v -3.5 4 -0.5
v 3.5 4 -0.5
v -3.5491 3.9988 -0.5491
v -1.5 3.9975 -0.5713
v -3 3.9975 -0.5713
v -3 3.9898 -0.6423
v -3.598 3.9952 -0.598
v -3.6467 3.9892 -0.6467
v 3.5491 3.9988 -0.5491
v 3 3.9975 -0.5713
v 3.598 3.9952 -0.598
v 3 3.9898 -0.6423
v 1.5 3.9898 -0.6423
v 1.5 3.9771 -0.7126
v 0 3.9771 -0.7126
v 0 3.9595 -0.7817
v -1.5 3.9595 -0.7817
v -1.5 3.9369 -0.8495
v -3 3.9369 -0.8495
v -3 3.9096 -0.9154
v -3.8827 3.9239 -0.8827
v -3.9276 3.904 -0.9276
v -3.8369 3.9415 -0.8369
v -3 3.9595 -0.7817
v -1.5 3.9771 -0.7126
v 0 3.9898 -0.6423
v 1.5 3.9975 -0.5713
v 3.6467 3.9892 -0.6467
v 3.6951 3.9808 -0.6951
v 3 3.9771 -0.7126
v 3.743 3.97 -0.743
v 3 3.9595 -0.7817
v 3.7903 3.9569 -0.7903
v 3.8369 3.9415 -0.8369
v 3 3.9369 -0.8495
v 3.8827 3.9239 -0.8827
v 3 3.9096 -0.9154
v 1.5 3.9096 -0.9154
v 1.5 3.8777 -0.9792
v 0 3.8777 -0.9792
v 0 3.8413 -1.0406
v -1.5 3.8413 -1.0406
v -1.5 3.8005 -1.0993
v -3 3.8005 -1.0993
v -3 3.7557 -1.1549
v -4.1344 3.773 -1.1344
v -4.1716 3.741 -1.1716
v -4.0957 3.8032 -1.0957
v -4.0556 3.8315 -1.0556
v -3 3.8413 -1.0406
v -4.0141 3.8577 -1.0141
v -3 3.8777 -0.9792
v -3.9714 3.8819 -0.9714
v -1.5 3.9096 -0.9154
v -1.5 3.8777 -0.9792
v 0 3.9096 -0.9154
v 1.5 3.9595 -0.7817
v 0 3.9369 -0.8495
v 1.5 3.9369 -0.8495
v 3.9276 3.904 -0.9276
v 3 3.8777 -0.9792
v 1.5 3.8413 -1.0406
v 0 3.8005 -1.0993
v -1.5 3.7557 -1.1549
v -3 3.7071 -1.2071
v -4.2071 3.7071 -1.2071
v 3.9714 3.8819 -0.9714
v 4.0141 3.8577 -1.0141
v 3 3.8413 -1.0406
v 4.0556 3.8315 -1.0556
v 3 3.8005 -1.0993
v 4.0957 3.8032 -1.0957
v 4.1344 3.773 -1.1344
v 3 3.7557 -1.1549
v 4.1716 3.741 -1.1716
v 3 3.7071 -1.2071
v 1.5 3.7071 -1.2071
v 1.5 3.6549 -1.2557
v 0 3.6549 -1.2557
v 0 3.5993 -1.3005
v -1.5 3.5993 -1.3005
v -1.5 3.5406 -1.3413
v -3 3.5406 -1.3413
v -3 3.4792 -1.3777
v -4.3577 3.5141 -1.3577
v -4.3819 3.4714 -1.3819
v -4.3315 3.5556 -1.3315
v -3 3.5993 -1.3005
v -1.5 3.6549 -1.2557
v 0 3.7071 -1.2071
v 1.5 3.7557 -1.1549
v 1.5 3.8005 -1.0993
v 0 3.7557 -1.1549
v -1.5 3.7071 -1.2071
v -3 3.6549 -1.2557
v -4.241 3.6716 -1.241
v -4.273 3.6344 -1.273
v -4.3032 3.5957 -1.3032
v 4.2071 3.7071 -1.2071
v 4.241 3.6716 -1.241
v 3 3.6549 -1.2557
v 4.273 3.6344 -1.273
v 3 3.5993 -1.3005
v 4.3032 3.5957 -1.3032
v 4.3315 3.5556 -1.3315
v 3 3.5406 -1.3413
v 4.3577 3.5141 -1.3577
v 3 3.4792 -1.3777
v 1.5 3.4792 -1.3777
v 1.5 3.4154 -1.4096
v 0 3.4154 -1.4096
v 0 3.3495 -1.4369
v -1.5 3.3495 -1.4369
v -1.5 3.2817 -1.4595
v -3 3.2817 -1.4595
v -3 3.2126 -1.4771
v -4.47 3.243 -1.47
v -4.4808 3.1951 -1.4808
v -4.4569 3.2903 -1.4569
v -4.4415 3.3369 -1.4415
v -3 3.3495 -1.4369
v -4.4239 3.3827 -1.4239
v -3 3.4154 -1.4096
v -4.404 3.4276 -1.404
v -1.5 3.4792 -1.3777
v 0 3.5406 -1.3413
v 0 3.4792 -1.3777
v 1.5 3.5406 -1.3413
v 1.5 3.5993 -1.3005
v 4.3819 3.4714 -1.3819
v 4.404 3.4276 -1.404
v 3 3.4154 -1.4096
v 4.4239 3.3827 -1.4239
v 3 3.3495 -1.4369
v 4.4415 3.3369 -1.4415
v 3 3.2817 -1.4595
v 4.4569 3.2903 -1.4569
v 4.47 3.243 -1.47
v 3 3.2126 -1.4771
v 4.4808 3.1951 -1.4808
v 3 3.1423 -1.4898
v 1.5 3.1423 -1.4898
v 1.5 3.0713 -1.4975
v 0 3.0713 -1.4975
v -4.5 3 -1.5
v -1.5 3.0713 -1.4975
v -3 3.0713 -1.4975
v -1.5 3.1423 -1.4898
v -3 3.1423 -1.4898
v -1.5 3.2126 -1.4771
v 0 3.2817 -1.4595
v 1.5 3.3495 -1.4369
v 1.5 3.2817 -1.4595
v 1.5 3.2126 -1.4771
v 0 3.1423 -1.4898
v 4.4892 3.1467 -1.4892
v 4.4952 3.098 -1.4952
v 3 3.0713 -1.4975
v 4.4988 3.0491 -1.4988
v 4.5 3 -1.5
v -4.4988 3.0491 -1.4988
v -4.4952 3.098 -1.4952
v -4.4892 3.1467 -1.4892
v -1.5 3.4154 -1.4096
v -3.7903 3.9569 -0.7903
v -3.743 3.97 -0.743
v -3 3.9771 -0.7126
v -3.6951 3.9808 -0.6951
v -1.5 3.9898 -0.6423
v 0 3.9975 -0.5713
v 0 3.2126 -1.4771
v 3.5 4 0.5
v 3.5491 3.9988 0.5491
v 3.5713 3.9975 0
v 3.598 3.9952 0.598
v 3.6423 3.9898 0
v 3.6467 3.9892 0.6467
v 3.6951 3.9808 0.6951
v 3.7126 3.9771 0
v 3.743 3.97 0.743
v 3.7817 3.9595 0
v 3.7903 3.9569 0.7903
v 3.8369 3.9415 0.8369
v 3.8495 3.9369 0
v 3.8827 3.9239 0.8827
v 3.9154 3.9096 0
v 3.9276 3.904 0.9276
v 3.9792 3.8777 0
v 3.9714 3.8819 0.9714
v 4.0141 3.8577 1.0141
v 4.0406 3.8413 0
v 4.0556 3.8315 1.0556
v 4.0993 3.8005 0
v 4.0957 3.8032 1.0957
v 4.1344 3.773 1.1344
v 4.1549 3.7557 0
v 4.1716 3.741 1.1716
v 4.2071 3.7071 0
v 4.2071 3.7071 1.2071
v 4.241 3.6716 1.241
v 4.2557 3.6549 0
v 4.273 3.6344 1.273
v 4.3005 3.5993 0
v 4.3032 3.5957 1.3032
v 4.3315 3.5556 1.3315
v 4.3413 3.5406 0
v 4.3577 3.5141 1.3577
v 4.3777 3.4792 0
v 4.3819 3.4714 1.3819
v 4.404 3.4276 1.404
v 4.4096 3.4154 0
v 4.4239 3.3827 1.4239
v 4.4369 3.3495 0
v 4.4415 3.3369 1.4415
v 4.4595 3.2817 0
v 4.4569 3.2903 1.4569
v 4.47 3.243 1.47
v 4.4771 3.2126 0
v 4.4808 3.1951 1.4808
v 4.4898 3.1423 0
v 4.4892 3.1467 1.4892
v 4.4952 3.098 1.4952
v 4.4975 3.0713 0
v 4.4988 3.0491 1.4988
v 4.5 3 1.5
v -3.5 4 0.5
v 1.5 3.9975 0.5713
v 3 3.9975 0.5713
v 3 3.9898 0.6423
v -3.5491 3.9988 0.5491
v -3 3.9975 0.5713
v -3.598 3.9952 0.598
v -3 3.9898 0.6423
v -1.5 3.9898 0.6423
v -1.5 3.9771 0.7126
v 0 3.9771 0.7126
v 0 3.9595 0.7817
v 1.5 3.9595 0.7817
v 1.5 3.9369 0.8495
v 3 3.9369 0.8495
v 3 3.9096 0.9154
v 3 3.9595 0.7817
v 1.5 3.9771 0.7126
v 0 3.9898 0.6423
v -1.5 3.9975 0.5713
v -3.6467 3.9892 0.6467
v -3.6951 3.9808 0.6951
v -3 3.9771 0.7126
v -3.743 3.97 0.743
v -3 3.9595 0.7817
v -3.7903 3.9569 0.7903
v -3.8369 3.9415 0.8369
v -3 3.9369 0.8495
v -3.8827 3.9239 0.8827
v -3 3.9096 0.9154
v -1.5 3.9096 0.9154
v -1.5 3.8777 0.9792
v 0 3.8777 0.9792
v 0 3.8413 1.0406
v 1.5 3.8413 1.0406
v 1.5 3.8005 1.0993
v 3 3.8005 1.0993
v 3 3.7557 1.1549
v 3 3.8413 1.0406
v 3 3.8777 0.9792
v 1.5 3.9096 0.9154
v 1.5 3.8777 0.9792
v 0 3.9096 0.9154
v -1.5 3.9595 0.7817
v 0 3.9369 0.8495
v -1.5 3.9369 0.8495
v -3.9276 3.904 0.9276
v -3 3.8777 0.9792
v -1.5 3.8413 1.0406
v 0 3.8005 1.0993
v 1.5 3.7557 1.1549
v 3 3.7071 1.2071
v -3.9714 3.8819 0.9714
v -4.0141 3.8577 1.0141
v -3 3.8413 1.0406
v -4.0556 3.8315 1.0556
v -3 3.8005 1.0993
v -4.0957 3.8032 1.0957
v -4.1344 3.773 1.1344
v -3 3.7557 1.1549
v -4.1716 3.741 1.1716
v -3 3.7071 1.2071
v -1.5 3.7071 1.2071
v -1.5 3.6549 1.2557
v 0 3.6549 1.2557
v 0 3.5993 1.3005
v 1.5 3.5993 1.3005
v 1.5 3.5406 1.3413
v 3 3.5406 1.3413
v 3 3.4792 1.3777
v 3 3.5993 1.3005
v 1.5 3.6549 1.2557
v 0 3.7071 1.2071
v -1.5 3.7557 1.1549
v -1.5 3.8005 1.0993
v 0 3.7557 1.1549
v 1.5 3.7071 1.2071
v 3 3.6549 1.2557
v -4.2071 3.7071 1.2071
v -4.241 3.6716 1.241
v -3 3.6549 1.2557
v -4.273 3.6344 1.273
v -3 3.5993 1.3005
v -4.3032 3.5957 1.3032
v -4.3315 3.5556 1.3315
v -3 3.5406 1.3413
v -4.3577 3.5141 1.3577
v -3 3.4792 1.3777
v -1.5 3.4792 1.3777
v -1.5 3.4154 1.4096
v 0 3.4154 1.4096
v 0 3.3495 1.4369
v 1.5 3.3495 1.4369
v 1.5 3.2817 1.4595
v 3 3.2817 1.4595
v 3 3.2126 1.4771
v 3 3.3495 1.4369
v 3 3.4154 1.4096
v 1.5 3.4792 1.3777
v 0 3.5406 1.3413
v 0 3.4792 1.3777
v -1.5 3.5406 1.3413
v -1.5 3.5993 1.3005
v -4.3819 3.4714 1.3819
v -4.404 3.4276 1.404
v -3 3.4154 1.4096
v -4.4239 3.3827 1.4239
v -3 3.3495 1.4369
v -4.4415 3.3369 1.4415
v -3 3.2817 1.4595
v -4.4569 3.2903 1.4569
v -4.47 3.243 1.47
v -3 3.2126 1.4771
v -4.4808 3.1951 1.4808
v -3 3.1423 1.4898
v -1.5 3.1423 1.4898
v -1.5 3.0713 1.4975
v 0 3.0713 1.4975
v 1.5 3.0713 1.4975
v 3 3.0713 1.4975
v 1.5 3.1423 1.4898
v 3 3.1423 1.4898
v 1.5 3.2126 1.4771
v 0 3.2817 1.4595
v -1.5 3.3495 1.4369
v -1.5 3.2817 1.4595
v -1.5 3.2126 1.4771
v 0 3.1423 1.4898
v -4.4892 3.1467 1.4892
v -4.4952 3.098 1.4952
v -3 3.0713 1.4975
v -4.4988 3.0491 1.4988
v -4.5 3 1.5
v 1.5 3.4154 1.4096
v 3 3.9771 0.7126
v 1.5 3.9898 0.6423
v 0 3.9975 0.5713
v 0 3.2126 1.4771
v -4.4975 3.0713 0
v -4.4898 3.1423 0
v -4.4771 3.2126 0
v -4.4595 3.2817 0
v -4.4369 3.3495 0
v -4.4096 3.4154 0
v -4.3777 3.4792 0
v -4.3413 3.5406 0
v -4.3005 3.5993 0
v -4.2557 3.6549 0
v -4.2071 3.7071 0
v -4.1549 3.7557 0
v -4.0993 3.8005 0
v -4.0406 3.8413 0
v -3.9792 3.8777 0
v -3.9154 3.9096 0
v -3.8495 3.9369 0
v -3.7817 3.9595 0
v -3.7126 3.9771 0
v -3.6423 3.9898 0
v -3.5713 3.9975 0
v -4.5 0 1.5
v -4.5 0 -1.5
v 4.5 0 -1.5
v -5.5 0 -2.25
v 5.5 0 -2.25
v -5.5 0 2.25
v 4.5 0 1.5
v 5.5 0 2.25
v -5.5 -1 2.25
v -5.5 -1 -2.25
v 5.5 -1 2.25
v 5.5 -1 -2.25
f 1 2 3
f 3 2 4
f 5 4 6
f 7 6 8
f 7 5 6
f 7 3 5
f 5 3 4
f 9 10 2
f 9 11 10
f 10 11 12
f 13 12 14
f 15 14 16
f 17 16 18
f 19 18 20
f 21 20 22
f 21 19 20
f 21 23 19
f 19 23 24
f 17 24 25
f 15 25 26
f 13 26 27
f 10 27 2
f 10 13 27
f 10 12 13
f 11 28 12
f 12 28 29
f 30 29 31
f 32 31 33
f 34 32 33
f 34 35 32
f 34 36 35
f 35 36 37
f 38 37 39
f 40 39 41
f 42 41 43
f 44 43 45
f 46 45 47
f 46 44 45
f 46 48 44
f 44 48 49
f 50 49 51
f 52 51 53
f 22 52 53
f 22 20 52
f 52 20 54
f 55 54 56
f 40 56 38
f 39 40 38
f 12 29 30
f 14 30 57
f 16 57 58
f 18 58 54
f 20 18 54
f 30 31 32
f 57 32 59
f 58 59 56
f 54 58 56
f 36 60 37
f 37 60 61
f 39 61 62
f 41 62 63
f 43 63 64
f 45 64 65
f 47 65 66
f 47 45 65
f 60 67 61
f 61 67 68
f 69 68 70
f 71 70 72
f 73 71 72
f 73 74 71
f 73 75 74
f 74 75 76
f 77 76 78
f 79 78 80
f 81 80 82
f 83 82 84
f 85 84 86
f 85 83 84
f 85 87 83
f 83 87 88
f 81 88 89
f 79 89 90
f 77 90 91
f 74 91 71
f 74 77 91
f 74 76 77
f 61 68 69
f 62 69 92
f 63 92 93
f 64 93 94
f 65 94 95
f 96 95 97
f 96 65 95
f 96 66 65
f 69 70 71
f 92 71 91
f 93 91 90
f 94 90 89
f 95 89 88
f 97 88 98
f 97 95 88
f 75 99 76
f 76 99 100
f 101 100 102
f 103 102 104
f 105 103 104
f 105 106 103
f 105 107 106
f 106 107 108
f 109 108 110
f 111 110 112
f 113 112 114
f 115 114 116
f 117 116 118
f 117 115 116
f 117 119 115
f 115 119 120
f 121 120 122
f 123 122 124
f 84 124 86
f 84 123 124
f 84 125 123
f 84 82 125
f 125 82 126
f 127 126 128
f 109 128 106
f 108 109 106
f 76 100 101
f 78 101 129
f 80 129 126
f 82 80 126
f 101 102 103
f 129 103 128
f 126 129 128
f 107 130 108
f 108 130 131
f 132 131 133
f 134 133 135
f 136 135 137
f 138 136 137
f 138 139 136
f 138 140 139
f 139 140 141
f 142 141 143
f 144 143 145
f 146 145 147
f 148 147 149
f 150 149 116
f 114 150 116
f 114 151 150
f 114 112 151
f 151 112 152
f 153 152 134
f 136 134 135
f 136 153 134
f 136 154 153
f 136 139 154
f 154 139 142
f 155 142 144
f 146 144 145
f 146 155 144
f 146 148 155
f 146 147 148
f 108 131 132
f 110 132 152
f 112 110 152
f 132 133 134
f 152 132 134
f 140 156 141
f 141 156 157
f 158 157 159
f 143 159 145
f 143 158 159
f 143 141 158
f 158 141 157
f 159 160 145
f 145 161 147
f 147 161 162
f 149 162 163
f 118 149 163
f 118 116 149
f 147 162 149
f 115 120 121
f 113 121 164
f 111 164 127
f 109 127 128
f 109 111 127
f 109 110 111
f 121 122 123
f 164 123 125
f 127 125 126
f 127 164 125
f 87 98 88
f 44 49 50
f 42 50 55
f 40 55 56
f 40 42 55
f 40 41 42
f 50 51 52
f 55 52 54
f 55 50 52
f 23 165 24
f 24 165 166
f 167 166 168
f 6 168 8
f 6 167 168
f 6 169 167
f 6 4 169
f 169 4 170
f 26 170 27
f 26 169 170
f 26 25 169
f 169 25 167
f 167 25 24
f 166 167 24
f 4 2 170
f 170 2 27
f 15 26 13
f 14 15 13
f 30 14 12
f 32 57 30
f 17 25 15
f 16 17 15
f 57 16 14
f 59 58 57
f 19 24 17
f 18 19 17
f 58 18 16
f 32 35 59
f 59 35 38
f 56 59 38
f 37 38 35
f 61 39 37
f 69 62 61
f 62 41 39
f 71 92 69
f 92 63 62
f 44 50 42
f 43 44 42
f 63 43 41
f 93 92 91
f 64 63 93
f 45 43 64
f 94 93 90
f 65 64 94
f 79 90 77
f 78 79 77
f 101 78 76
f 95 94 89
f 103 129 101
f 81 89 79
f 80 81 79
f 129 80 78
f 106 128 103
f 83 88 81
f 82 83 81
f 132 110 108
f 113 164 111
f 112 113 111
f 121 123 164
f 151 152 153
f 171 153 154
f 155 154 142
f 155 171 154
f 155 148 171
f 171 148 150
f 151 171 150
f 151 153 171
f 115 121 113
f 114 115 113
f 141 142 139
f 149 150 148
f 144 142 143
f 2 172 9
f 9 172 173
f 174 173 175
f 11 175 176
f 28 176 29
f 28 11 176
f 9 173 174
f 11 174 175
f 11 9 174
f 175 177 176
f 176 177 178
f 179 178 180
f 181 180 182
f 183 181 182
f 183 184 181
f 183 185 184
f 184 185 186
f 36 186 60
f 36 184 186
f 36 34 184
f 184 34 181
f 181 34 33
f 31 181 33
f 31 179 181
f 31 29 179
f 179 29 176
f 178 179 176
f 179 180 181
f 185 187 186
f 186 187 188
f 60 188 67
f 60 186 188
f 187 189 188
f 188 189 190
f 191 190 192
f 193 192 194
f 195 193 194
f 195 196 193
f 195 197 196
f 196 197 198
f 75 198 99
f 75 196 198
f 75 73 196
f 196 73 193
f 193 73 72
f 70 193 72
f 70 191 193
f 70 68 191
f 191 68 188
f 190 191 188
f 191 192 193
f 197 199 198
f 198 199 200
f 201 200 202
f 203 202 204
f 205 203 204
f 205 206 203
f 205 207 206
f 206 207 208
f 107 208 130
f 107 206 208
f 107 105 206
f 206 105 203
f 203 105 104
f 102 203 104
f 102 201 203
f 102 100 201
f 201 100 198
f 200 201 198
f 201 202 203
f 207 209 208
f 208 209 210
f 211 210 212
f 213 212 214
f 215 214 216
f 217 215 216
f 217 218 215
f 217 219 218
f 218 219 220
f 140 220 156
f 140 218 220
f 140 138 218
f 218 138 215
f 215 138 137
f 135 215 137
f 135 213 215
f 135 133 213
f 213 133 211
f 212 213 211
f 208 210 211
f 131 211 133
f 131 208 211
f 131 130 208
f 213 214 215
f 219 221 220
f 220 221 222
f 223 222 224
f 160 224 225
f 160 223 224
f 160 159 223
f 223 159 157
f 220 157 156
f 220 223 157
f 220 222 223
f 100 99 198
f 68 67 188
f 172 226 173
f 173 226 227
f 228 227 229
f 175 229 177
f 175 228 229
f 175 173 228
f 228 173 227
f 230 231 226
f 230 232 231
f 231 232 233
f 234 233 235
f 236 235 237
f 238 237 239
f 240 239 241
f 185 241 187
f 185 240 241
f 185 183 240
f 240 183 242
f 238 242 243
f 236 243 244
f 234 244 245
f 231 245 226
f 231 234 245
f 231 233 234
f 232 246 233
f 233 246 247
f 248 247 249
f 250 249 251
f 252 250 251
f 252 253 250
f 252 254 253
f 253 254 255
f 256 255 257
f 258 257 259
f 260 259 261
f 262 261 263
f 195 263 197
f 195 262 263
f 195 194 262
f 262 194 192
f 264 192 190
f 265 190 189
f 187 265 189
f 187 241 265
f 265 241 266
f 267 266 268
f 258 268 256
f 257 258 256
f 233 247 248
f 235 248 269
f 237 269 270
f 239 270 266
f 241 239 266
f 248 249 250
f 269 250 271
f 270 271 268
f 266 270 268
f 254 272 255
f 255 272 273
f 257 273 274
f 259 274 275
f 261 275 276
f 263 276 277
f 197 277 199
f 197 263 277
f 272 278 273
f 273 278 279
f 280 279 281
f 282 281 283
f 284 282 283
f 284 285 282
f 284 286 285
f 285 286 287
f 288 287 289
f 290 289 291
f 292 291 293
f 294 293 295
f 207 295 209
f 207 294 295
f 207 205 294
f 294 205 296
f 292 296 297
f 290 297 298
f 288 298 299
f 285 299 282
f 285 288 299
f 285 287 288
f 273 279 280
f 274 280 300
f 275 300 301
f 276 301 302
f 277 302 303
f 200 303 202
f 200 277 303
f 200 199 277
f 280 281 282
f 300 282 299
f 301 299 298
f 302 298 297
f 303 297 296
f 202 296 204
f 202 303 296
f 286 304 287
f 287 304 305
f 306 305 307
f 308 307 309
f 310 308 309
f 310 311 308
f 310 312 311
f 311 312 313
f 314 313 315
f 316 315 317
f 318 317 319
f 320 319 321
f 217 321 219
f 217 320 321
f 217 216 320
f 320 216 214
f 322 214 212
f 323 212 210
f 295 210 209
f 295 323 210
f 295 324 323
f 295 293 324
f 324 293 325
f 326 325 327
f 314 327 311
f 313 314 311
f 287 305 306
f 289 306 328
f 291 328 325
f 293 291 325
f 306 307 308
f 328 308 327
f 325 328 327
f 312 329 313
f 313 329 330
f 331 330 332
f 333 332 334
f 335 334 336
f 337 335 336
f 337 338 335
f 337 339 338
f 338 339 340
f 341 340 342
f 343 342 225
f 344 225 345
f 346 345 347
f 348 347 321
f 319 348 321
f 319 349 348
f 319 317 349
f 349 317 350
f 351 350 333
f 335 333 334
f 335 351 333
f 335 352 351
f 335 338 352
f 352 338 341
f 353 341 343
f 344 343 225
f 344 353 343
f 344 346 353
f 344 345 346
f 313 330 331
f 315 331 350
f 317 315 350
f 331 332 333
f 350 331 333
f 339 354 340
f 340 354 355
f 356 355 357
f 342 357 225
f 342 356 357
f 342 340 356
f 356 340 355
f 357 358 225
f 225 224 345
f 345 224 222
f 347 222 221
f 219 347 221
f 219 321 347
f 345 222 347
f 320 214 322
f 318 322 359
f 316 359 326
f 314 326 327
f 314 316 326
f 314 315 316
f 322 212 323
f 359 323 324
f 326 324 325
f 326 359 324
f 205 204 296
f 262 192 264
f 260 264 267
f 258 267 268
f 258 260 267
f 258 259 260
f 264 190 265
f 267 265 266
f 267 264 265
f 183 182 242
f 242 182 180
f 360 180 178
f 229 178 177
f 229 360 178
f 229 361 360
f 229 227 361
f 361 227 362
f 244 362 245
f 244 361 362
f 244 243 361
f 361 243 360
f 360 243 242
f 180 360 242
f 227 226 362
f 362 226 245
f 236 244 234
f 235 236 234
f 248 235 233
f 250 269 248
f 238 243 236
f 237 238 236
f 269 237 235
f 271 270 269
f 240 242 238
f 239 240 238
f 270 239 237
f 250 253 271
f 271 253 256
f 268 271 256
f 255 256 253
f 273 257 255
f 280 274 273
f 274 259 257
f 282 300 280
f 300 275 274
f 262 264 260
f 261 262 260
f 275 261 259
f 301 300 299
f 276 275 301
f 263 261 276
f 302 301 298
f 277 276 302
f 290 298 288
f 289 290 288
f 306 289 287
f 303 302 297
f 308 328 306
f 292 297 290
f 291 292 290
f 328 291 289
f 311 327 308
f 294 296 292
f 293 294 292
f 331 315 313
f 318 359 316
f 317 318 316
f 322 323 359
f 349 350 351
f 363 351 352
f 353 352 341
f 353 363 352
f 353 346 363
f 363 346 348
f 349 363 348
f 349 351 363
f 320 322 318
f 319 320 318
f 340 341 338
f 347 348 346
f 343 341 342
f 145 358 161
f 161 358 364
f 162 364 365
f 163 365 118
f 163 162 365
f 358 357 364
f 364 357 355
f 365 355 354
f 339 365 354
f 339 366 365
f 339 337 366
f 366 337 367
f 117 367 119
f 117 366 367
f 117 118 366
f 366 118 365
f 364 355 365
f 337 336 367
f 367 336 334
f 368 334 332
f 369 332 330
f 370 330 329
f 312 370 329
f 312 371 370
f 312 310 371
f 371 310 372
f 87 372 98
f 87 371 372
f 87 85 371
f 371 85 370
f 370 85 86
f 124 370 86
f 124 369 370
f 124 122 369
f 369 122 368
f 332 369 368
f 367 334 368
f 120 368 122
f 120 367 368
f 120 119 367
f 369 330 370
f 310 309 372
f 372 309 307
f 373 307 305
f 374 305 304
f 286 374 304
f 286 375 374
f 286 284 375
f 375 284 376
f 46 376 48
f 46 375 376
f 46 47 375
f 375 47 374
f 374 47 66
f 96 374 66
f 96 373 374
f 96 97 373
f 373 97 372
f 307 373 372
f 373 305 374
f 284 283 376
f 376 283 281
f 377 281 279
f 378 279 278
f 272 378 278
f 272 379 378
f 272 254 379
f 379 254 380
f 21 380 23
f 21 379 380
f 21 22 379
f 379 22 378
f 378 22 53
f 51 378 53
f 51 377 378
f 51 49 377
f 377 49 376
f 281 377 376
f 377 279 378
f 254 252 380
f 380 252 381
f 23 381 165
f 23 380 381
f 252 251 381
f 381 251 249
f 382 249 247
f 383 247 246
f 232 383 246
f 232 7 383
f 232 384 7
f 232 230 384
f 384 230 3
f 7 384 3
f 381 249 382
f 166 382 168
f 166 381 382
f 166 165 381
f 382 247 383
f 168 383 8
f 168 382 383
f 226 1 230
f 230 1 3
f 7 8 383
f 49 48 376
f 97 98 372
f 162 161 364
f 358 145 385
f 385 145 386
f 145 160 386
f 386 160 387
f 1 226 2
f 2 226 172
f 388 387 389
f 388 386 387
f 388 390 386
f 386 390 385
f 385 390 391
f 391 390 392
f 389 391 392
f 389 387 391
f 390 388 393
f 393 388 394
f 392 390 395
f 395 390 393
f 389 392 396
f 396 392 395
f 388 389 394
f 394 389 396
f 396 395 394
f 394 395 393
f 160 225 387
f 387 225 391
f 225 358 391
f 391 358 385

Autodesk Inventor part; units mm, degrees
ref_plane "YZ Plane" through (0, 0, 0) normal (1, 0, 0) x (0, 1, 0)
ref_plane "XZ Plane" through (0, 0, 0) normal (0, 1, 0) x (-1, 0, 0)
ref_plane "XY Plane" through (0, 0, 0) normal (0, 0, 1) x (1, 0, 0)
sketch "Szkic1" plane through (0, 0, 0) normal (0, 1, 0) x (-1, 0, 0)
  line L0 (-4.5, -1.5) -> (4.5, -1.5)
  line L1 (4.5, -1.5) -> (4.5, 1.5)
  line L2 (4.5, 1.5) -> (-4.5, 1.5)
  line L3 (-4.5, 1.5) -> (-4.5, -1.5)
  line L4 (-4.5, -1.5) -> (4.5, 1.5) construction
  line L5 (4.5, -1.5) -> (-4.5, 1.5) construction
  point P0 (0, 0)
  dimension "d0" = 9
  dimension "d1" = 3
extrude "Wyciągnięcie proste1" add sketch "Szkic1" along normal blind 4
sketch "Szkic2" plane through (0, 0, 0) normal (0, -1, 0) x (1, 0, 0)
  line L0 (-5.5, -2.25) -> (5.5, -2.25)
  line L1 (5.5, -2.25) -> (5.5, 2.25)
  line L2 (5.5, 2.25) -> (-5.5, 2.25)
  line L3 (-5.5, 2.25) -> (-5.5, -2.25)
  line L4 (-5.5, -2.25) -> (5.5, 2.25) construction
  line L5 (5.5, -2.25) -> (-5.5, 2.25) construction
  point P0 (0, 0)
  dimension "d4" = 11
  dimension "d5" = 4.5
extrude "Wyciągnięcie proste2" add sketch "Szkic2" along normal blind 1
fillet "Zaokrąglenie1" radius 1 4 edges at (0, 4, 1.5) (-4.5, 4, 0) (0, 4, -1.5) (4.5, 4, 0)
properties part number "PRZYCISK"
